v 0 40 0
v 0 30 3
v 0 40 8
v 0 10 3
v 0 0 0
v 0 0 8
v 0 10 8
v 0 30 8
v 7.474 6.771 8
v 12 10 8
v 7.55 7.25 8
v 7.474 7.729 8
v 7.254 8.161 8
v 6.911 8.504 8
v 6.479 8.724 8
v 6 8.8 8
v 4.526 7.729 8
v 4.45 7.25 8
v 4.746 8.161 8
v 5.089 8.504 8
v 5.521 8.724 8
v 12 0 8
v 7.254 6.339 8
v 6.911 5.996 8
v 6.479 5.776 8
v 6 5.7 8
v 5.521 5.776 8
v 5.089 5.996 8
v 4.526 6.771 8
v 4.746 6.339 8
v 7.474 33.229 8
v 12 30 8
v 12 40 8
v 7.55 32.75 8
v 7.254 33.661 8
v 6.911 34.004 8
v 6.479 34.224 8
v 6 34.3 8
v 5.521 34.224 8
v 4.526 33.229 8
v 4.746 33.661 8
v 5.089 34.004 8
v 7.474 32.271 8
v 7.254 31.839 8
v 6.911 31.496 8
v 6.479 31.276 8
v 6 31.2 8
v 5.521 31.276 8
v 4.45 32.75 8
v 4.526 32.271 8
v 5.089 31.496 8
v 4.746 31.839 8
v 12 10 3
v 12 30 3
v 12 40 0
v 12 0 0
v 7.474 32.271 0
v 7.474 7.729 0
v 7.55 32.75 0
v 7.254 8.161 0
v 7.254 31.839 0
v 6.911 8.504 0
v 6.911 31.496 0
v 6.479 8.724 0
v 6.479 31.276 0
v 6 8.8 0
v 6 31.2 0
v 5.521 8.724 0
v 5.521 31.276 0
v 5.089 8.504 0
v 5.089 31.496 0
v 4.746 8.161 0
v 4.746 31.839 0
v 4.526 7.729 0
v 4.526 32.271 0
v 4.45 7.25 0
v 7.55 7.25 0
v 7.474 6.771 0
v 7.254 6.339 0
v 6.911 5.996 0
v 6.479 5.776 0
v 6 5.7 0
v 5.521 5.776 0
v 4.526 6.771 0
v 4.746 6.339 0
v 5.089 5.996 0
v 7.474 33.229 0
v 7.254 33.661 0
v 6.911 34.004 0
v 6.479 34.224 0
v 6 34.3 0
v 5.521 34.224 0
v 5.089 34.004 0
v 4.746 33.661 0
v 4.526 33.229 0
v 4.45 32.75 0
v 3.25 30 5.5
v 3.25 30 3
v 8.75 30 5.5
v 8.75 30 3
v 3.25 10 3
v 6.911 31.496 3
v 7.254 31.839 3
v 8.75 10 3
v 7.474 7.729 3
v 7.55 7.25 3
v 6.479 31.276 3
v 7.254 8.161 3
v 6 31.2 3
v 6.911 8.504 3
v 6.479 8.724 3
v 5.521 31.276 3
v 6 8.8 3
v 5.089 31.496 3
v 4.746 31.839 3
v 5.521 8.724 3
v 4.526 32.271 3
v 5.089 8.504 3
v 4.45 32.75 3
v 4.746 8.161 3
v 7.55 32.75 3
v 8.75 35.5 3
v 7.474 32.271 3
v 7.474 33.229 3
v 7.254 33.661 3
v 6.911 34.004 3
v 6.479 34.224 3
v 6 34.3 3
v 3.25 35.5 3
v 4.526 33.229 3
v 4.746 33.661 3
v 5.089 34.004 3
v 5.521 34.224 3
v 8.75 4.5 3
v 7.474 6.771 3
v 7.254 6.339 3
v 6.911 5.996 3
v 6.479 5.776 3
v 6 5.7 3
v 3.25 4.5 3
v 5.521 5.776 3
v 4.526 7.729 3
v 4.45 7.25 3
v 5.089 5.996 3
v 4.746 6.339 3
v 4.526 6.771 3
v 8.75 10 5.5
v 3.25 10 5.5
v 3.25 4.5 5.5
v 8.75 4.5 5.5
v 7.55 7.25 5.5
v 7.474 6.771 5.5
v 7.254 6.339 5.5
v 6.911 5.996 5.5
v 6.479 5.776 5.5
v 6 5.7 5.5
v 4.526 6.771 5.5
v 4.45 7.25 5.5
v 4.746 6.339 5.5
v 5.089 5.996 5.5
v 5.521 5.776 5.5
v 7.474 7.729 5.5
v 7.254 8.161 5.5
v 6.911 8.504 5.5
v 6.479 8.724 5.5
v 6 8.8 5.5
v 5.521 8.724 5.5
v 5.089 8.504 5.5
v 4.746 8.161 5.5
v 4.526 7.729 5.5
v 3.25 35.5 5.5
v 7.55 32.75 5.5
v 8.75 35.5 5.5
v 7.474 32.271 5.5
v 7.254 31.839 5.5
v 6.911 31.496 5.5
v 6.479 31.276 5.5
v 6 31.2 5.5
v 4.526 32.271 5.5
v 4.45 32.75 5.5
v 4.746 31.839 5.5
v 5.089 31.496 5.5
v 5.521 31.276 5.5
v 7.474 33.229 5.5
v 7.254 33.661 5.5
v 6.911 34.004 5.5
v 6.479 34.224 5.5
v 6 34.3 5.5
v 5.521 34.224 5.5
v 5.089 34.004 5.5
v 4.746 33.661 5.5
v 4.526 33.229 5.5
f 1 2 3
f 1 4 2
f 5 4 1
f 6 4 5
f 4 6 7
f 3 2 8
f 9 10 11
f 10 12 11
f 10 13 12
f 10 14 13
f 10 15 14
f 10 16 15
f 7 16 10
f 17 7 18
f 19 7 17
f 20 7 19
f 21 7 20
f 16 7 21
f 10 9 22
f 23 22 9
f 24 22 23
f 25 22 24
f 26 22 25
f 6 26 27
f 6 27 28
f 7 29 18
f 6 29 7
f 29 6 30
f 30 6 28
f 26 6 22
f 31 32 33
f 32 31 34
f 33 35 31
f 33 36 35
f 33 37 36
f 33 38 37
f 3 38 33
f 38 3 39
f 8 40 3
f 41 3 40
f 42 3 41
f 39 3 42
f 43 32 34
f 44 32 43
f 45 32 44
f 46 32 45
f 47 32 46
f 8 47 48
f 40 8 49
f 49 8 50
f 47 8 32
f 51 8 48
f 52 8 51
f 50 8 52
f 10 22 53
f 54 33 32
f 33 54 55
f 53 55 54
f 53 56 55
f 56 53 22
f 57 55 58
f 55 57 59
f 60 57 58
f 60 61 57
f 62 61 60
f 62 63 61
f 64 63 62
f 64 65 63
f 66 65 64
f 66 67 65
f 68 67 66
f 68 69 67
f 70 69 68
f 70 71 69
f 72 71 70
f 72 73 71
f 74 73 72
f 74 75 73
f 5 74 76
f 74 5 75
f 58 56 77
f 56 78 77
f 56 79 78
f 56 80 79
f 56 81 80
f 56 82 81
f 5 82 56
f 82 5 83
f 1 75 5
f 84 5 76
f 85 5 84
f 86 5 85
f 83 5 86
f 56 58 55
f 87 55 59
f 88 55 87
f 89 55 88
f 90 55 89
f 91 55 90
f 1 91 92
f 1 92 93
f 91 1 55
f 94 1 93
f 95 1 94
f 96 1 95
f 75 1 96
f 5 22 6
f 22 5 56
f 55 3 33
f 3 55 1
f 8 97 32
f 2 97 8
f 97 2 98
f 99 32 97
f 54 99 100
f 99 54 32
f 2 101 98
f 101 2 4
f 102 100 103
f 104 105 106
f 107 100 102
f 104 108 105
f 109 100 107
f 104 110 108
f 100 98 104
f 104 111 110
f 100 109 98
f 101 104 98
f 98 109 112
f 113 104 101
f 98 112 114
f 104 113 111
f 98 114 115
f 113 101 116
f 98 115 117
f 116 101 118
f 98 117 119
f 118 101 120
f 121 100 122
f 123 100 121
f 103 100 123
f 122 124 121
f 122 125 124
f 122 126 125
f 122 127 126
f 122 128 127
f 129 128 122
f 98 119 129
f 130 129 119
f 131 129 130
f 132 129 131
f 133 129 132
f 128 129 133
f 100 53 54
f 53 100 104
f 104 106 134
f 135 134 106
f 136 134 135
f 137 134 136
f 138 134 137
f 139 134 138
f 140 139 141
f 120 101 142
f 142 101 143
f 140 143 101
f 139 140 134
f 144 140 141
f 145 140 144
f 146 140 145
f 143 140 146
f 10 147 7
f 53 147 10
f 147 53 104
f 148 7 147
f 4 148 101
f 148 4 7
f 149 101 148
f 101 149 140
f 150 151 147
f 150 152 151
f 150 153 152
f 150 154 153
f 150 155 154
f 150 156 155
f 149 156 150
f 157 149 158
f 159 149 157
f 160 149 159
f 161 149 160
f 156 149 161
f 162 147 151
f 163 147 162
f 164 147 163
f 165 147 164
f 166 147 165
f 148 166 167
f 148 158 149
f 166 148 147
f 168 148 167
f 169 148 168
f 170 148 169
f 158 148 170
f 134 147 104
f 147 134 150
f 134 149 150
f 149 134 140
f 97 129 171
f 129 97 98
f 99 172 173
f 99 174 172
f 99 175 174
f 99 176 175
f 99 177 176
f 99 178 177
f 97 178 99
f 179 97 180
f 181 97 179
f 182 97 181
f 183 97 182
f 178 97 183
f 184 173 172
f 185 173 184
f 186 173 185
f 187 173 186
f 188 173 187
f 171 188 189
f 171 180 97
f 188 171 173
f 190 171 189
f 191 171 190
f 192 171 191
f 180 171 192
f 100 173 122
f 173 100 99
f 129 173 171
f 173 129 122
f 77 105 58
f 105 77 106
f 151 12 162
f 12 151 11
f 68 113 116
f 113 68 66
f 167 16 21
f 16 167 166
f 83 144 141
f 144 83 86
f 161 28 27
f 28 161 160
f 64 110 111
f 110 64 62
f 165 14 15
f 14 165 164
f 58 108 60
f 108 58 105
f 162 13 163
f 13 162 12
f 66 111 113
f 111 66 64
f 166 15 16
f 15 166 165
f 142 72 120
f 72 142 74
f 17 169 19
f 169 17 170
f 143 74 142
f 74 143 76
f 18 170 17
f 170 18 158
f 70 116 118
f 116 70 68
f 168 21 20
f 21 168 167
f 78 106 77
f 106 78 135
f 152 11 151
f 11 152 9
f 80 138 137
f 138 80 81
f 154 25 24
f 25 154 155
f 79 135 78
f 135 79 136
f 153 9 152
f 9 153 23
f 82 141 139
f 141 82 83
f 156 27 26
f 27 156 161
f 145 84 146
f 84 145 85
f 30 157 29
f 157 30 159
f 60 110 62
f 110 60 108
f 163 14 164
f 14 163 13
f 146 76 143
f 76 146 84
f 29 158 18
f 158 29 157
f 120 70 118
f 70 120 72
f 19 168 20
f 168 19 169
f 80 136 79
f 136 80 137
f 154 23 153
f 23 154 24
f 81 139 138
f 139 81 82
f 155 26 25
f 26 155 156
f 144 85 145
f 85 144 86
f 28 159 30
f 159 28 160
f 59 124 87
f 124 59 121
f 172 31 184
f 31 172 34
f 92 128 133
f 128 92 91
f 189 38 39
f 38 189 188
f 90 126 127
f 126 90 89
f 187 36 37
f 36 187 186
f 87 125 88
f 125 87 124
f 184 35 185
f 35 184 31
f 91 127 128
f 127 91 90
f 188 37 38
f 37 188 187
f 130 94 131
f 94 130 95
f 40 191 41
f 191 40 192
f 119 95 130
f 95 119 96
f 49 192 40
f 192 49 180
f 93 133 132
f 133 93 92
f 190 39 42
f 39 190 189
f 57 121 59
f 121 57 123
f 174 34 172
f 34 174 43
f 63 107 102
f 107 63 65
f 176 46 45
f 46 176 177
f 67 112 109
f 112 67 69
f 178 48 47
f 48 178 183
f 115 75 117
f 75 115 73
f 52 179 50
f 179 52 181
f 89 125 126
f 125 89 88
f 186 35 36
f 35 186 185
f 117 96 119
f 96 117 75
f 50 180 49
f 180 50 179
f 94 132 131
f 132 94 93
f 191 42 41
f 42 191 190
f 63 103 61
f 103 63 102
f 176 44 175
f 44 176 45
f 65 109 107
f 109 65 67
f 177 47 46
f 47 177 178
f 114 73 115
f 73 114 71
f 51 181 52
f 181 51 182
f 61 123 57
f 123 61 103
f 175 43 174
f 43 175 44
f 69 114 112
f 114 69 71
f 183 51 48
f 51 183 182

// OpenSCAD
// Top lid for bulb for pinapple lamp with hole for push button
$fa=0.5; // default minimum facet angle is now 0.5
$fs=0.5; // default minimum facet size is now 0.5 mm
difference()
{
  // Main cube
  cube([12,40,8]);


  // Cubes for ESP32
  translate ([0, 10, 3])
  cube([12,20,25]);
    
  // Outlet for cables
  translate ([40, 10, 0])
  cube([20,20,12]);
  
  // Fixture in Housing Bottom
  translate ([3.25, 4.5, 3])
  cube([5.5,5.5,2.5]);
  translate ([3.25, 30, 3])
  cube([5.5,5.5,2.5]);
  
  translate ([6, 7.25, 0])
  cylinder(r=1.55,h=13);
  translate ([6, 32.75, 0])
  cylinder(r=1.55,h=13);  
}
